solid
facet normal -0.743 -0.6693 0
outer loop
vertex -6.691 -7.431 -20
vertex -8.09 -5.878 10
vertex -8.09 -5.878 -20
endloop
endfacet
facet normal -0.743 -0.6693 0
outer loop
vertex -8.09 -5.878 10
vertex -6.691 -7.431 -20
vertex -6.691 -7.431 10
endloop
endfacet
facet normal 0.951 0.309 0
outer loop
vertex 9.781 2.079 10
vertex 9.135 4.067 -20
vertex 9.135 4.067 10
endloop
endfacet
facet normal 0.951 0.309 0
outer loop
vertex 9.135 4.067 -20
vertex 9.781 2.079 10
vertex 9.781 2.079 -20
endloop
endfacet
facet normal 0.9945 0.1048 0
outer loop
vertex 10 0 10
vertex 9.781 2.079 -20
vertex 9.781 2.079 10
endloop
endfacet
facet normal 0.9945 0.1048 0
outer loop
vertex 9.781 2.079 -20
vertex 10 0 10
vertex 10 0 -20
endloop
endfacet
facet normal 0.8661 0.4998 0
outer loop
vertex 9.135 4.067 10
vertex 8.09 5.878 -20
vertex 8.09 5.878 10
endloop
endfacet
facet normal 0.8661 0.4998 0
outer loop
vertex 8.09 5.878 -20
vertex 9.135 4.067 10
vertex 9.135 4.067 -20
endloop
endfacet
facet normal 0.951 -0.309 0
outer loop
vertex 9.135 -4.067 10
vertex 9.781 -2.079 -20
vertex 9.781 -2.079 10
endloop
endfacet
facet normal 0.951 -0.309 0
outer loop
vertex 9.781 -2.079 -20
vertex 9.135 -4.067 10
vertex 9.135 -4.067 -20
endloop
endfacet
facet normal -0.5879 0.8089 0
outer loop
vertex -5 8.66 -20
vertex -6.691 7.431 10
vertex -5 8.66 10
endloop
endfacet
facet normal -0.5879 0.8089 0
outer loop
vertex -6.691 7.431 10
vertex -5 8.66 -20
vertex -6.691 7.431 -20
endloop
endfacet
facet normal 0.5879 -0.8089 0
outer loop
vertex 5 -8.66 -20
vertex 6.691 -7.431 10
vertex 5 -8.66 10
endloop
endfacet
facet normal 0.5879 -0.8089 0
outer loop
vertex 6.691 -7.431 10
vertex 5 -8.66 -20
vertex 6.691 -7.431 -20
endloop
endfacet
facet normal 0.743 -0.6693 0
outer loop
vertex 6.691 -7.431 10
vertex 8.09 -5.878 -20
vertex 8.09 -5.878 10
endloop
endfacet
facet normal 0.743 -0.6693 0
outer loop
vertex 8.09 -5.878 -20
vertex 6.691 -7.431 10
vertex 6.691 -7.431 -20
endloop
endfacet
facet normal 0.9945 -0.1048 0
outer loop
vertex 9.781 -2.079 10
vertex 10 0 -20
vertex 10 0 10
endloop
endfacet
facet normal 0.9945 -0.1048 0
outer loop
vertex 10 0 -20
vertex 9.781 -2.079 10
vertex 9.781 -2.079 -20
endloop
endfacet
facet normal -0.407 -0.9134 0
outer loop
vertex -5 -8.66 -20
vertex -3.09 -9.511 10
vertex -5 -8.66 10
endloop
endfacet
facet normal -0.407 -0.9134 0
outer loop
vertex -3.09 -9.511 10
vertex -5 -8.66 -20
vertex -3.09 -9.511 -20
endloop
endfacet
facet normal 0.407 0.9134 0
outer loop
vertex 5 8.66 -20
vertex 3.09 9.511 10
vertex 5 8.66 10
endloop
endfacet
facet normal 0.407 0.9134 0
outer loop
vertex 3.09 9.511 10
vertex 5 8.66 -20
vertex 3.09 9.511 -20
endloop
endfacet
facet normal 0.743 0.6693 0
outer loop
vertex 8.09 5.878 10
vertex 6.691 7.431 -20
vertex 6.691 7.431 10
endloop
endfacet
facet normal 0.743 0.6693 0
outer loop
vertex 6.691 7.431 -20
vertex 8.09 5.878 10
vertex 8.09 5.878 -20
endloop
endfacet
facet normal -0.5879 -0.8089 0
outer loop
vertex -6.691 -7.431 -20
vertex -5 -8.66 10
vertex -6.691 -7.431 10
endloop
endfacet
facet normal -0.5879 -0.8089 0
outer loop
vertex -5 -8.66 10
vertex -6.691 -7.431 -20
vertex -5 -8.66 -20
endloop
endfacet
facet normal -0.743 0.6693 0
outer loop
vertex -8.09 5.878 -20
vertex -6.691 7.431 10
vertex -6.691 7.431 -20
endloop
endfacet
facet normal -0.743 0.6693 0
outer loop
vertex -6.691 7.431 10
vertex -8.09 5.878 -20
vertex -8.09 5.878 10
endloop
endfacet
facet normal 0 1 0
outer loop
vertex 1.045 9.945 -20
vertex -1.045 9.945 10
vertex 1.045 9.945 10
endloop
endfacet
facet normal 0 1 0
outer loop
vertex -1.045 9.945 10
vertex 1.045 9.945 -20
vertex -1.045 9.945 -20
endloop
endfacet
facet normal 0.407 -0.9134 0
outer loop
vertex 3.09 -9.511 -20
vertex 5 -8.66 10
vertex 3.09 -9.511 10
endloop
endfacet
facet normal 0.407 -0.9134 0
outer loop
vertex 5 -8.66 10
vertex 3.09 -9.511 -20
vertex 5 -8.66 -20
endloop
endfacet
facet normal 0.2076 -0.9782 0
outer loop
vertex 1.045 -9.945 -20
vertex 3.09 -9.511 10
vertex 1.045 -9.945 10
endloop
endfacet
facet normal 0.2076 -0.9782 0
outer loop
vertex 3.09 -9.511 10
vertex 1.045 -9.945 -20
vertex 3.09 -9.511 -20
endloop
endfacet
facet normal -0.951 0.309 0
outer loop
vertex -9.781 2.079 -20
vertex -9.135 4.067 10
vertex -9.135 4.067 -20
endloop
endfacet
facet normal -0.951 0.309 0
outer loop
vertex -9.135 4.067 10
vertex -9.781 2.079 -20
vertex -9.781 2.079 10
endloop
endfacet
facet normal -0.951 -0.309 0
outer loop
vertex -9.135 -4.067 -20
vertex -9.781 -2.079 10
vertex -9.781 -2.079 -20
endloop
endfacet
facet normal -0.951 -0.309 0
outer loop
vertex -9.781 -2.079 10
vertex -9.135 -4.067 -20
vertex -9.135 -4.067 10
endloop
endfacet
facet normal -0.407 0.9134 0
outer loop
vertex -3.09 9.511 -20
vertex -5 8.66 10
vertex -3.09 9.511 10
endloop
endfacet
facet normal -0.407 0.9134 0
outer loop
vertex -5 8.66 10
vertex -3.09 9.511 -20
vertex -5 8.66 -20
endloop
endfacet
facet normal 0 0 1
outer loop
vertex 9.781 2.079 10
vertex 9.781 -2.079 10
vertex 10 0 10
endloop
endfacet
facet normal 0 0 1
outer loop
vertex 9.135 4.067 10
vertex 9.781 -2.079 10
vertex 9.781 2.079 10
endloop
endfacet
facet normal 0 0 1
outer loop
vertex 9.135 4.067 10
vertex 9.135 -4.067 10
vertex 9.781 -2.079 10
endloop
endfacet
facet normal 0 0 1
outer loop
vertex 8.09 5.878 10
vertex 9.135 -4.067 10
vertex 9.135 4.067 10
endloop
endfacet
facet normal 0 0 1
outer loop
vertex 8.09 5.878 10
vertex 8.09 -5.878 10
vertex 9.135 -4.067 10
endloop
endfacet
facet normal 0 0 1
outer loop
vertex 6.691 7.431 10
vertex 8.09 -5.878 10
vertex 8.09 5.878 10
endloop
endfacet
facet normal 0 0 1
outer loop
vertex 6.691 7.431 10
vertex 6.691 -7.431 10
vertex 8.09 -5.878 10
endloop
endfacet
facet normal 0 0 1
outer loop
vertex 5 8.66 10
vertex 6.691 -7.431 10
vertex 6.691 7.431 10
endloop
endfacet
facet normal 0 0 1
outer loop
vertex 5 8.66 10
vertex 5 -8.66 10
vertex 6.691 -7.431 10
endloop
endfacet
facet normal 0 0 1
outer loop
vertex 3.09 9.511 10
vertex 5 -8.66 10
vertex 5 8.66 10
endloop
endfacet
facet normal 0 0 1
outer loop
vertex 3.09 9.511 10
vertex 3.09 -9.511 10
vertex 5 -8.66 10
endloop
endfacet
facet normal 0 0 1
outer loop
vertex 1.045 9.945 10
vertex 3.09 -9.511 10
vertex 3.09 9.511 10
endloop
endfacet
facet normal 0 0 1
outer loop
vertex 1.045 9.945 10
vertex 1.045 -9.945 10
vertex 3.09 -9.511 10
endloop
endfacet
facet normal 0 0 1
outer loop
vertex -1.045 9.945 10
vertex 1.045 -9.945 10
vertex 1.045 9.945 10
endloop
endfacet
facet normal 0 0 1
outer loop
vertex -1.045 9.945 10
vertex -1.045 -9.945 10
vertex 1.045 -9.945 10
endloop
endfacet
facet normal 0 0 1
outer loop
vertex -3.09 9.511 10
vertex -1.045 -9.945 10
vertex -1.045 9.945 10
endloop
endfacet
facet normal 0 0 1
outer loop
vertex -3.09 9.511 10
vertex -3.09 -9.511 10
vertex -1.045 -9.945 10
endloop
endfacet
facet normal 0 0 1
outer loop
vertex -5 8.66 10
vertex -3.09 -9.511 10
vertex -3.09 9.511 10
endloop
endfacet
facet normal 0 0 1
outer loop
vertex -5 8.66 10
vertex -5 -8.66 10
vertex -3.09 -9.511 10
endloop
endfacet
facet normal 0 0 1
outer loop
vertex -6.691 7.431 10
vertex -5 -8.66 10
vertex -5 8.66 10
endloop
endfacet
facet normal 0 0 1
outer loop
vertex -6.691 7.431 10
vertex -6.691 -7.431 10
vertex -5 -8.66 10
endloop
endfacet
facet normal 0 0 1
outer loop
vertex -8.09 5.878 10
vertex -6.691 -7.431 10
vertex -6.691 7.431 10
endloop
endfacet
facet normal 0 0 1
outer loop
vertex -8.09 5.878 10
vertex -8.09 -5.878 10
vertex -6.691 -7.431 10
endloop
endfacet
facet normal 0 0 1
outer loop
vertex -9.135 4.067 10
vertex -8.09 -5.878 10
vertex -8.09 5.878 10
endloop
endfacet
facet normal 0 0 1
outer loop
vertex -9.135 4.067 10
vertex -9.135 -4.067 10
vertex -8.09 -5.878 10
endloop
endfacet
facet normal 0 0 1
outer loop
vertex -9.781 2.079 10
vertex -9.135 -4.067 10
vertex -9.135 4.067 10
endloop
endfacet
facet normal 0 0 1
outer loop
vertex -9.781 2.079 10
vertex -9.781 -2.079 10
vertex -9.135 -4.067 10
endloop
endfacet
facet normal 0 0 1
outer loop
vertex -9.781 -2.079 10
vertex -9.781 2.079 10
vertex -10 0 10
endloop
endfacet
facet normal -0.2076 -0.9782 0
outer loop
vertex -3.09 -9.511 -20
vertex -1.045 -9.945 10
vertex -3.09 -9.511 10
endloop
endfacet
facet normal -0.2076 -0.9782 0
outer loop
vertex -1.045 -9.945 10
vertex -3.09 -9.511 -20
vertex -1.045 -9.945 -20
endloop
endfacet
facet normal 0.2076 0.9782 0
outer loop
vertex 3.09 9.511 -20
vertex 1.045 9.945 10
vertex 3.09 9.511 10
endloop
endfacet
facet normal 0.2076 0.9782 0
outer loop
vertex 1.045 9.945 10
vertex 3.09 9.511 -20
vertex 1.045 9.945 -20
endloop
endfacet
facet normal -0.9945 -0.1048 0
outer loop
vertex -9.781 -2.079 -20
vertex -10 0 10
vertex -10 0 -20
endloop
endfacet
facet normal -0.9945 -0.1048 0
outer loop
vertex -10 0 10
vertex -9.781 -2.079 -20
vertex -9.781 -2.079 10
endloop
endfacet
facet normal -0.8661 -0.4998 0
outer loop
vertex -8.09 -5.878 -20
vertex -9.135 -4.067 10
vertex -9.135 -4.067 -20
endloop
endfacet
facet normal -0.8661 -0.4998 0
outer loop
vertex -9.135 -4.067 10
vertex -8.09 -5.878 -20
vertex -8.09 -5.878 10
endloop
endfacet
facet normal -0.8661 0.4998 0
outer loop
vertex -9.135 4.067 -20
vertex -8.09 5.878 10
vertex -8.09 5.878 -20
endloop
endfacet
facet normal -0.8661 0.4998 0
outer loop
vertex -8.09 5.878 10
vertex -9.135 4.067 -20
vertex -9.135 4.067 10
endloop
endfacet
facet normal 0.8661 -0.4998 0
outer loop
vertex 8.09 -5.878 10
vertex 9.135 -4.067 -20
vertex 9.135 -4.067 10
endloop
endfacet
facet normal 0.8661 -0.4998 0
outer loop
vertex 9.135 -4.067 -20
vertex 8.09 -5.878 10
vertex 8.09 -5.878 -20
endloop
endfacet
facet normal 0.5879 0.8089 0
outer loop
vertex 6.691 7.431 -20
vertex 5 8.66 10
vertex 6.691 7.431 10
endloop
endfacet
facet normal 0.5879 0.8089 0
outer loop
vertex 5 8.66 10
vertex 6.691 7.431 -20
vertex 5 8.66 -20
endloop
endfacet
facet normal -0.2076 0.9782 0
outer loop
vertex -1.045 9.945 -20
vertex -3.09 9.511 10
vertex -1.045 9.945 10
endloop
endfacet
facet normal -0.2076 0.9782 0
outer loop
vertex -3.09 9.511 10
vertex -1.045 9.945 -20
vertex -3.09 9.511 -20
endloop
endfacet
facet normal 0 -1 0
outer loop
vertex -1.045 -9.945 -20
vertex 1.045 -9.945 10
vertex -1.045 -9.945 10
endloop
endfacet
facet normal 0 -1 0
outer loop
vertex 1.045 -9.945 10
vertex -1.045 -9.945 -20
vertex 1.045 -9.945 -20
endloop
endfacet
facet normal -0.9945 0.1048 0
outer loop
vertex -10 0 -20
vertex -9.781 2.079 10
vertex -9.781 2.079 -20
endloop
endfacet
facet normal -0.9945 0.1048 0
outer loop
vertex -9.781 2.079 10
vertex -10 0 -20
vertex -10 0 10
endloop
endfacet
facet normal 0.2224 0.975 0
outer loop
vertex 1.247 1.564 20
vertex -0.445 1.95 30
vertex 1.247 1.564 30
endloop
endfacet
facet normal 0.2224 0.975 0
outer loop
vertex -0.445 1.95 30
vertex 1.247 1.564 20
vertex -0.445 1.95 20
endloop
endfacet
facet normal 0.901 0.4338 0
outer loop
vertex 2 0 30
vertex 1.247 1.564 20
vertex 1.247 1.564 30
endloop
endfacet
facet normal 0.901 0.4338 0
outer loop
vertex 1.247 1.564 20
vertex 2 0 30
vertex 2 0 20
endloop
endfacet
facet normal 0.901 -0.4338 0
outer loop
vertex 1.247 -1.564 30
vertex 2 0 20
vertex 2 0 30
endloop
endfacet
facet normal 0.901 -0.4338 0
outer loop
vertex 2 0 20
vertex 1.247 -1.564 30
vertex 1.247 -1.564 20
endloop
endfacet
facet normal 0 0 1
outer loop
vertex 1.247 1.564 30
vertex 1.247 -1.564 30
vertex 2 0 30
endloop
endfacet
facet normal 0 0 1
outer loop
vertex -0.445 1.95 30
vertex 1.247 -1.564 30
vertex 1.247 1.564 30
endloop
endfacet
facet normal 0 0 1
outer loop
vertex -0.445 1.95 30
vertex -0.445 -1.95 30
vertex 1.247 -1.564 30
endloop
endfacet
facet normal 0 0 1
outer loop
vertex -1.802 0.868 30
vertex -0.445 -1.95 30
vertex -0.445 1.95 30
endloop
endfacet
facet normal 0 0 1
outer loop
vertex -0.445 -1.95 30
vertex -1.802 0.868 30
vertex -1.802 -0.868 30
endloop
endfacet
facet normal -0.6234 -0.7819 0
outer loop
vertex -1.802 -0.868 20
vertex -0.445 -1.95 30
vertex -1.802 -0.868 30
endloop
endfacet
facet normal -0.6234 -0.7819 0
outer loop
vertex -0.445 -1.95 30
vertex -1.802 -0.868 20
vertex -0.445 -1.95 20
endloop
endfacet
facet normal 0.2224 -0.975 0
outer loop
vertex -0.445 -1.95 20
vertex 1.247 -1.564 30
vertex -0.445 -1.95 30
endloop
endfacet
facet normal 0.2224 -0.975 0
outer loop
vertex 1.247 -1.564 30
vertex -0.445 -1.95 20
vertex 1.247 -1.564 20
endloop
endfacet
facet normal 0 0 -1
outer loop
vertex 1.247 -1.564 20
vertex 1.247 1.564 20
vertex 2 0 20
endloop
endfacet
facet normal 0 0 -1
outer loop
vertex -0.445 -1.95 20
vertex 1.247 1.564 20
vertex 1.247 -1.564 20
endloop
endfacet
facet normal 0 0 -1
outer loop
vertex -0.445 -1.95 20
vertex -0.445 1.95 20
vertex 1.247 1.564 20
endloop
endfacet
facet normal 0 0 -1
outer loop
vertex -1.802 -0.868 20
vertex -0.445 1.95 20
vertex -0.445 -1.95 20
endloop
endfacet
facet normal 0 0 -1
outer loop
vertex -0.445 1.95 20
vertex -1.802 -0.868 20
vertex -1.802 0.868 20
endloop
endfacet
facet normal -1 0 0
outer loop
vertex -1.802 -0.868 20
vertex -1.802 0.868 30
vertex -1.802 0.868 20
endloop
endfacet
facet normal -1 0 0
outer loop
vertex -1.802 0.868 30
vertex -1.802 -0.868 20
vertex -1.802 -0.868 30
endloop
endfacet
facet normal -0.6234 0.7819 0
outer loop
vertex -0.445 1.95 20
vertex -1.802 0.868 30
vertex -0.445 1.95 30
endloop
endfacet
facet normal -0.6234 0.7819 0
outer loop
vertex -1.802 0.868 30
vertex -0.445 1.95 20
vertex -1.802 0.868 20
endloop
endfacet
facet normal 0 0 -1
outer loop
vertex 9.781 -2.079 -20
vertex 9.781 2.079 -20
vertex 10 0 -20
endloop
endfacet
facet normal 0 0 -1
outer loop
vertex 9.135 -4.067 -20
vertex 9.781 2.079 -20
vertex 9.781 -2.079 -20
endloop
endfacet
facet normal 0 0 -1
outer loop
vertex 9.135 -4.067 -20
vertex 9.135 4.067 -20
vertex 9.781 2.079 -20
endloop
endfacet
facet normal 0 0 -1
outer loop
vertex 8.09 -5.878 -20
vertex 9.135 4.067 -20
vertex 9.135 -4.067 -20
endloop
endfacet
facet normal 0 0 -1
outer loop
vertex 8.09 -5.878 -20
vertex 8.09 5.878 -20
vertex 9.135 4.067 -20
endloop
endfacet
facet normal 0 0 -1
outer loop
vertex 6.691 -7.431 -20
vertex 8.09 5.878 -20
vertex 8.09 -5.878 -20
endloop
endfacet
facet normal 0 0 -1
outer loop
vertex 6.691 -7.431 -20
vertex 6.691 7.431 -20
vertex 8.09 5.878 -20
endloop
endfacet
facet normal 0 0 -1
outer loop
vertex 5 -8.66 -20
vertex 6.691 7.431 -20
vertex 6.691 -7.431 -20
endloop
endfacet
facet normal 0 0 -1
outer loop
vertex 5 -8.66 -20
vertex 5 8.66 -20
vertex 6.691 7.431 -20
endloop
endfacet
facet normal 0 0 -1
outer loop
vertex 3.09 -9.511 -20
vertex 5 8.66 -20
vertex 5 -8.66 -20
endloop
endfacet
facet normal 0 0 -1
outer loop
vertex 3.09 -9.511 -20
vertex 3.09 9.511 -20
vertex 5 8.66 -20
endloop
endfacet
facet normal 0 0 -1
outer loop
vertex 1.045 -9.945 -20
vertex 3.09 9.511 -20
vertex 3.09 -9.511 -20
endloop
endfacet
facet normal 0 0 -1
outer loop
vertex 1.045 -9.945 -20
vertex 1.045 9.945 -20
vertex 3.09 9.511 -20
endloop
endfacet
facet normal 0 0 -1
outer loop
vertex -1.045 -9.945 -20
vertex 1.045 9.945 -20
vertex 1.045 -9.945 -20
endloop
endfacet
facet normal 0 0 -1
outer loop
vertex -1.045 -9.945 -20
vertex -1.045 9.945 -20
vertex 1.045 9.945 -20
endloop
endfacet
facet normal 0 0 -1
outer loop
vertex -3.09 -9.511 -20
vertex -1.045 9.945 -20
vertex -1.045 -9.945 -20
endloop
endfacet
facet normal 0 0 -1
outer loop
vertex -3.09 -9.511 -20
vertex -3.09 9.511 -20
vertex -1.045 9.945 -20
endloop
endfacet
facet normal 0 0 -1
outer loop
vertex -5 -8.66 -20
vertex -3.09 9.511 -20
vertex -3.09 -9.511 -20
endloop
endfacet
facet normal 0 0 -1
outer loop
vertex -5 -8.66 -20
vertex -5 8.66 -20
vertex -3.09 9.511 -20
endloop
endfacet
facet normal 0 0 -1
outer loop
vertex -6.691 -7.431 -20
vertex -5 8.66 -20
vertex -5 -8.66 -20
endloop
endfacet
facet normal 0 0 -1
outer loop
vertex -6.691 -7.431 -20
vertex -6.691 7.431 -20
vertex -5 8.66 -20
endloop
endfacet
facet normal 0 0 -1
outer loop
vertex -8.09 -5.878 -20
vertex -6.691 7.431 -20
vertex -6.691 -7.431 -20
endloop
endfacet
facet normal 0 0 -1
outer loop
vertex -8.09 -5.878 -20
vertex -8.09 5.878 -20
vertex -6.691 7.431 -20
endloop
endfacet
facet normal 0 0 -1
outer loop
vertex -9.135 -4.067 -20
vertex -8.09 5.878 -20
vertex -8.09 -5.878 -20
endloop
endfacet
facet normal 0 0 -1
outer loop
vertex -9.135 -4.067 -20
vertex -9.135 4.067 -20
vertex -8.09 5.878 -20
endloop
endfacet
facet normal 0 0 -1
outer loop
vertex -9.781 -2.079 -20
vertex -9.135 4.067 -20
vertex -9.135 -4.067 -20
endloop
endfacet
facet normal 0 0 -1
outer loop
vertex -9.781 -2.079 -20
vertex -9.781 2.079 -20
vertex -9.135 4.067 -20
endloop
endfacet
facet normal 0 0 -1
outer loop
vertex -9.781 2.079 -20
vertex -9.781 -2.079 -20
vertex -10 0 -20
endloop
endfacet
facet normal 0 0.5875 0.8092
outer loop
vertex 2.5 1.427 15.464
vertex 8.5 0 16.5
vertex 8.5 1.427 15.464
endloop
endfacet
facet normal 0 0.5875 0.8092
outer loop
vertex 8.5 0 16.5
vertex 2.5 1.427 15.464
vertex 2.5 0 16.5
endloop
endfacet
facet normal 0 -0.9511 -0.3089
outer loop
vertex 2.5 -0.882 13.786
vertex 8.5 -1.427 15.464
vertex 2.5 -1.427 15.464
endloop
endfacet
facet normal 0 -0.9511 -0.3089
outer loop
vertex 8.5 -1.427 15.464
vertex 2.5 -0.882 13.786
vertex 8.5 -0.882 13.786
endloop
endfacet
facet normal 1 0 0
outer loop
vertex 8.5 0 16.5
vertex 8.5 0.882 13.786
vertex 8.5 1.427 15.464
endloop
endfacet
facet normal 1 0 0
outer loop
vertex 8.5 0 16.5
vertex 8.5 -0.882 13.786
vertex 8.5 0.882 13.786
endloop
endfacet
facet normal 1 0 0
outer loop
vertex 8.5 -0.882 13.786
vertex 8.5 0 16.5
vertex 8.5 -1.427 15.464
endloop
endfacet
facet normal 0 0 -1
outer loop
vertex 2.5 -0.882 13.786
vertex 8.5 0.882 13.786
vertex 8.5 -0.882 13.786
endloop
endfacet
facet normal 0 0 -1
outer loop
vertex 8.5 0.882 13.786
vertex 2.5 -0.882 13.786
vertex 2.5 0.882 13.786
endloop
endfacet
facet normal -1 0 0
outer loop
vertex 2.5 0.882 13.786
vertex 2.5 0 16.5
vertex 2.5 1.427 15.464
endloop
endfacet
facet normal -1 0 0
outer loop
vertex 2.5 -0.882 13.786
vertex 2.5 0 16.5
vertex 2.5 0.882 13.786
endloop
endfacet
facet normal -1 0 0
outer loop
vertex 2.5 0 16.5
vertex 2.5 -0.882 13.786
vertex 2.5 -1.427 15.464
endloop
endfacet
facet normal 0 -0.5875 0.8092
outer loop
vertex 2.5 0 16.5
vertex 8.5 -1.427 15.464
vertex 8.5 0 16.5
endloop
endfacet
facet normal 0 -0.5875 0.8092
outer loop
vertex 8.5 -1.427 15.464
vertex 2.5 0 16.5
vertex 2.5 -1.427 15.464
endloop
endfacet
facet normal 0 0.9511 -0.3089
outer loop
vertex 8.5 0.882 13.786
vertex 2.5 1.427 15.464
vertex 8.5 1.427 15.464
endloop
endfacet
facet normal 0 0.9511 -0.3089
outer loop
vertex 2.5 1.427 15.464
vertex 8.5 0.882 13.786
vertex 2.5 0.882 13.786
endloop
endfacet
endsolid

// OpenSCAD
// Define dimensions
pin_length = 10;
pin_diameter = 4;

central_cylinder_height = 30;
central_cylinder_diameter = 20;

grooved_cylinder_height = 20;
grooved_cylinder_diameter = 20;

set_screw_diameter = 3;
set_screw_length = 6;

// Module for the pin
module pin() {
    cylinder(h = pin_length, d = pin_diameter);
}

// Module for the central cylinder
module central_cylinder() {
    translate([0, 0, -central_cylinder_height / 2])
        cylinder(h = central_cylinder_height, d = central_cylinder_diameter, center = true);
}

// Module for the grooved cylinder
module grooved_cylinder() {
    difference() {
        cylinder(h = grooved_cylinder_height, d = grooved_cylinder_diameter, center = true);

        // Create grooves
        for (i = [1:3])
            translate([0, 0, i * 6])
                cylinder(h = 1, d = grooved_cylinder_diameter + 2);

        // Create central hole
        translate([0, 0, -grooved_cylinder_height / 2])
            cylinder(h = grooved_cylinder_height, d = pin_diameter);
    }
}

// Module for the set screw
module set_screw() {
    translate([grooved_cylinder_diameter / 2 - set_screw_diameter / 2, 0, pin_length / 2])
        rotate([0, -90, 0])
            cylinder(h = set_screw_length, d = set_screw_diameter);
}

// Assembly
module assembly() {
    translate([0, 0, grooved_cylinder_height / 2])
        pin();

    translate([0, 0, 0])
        central_cylinder();

    translate([0, 0, -grooved_cylinder_height / 2])
        grooved_cylinder();

    set_screw();
}

translate([0, 0, pin_length])
    assembly();
